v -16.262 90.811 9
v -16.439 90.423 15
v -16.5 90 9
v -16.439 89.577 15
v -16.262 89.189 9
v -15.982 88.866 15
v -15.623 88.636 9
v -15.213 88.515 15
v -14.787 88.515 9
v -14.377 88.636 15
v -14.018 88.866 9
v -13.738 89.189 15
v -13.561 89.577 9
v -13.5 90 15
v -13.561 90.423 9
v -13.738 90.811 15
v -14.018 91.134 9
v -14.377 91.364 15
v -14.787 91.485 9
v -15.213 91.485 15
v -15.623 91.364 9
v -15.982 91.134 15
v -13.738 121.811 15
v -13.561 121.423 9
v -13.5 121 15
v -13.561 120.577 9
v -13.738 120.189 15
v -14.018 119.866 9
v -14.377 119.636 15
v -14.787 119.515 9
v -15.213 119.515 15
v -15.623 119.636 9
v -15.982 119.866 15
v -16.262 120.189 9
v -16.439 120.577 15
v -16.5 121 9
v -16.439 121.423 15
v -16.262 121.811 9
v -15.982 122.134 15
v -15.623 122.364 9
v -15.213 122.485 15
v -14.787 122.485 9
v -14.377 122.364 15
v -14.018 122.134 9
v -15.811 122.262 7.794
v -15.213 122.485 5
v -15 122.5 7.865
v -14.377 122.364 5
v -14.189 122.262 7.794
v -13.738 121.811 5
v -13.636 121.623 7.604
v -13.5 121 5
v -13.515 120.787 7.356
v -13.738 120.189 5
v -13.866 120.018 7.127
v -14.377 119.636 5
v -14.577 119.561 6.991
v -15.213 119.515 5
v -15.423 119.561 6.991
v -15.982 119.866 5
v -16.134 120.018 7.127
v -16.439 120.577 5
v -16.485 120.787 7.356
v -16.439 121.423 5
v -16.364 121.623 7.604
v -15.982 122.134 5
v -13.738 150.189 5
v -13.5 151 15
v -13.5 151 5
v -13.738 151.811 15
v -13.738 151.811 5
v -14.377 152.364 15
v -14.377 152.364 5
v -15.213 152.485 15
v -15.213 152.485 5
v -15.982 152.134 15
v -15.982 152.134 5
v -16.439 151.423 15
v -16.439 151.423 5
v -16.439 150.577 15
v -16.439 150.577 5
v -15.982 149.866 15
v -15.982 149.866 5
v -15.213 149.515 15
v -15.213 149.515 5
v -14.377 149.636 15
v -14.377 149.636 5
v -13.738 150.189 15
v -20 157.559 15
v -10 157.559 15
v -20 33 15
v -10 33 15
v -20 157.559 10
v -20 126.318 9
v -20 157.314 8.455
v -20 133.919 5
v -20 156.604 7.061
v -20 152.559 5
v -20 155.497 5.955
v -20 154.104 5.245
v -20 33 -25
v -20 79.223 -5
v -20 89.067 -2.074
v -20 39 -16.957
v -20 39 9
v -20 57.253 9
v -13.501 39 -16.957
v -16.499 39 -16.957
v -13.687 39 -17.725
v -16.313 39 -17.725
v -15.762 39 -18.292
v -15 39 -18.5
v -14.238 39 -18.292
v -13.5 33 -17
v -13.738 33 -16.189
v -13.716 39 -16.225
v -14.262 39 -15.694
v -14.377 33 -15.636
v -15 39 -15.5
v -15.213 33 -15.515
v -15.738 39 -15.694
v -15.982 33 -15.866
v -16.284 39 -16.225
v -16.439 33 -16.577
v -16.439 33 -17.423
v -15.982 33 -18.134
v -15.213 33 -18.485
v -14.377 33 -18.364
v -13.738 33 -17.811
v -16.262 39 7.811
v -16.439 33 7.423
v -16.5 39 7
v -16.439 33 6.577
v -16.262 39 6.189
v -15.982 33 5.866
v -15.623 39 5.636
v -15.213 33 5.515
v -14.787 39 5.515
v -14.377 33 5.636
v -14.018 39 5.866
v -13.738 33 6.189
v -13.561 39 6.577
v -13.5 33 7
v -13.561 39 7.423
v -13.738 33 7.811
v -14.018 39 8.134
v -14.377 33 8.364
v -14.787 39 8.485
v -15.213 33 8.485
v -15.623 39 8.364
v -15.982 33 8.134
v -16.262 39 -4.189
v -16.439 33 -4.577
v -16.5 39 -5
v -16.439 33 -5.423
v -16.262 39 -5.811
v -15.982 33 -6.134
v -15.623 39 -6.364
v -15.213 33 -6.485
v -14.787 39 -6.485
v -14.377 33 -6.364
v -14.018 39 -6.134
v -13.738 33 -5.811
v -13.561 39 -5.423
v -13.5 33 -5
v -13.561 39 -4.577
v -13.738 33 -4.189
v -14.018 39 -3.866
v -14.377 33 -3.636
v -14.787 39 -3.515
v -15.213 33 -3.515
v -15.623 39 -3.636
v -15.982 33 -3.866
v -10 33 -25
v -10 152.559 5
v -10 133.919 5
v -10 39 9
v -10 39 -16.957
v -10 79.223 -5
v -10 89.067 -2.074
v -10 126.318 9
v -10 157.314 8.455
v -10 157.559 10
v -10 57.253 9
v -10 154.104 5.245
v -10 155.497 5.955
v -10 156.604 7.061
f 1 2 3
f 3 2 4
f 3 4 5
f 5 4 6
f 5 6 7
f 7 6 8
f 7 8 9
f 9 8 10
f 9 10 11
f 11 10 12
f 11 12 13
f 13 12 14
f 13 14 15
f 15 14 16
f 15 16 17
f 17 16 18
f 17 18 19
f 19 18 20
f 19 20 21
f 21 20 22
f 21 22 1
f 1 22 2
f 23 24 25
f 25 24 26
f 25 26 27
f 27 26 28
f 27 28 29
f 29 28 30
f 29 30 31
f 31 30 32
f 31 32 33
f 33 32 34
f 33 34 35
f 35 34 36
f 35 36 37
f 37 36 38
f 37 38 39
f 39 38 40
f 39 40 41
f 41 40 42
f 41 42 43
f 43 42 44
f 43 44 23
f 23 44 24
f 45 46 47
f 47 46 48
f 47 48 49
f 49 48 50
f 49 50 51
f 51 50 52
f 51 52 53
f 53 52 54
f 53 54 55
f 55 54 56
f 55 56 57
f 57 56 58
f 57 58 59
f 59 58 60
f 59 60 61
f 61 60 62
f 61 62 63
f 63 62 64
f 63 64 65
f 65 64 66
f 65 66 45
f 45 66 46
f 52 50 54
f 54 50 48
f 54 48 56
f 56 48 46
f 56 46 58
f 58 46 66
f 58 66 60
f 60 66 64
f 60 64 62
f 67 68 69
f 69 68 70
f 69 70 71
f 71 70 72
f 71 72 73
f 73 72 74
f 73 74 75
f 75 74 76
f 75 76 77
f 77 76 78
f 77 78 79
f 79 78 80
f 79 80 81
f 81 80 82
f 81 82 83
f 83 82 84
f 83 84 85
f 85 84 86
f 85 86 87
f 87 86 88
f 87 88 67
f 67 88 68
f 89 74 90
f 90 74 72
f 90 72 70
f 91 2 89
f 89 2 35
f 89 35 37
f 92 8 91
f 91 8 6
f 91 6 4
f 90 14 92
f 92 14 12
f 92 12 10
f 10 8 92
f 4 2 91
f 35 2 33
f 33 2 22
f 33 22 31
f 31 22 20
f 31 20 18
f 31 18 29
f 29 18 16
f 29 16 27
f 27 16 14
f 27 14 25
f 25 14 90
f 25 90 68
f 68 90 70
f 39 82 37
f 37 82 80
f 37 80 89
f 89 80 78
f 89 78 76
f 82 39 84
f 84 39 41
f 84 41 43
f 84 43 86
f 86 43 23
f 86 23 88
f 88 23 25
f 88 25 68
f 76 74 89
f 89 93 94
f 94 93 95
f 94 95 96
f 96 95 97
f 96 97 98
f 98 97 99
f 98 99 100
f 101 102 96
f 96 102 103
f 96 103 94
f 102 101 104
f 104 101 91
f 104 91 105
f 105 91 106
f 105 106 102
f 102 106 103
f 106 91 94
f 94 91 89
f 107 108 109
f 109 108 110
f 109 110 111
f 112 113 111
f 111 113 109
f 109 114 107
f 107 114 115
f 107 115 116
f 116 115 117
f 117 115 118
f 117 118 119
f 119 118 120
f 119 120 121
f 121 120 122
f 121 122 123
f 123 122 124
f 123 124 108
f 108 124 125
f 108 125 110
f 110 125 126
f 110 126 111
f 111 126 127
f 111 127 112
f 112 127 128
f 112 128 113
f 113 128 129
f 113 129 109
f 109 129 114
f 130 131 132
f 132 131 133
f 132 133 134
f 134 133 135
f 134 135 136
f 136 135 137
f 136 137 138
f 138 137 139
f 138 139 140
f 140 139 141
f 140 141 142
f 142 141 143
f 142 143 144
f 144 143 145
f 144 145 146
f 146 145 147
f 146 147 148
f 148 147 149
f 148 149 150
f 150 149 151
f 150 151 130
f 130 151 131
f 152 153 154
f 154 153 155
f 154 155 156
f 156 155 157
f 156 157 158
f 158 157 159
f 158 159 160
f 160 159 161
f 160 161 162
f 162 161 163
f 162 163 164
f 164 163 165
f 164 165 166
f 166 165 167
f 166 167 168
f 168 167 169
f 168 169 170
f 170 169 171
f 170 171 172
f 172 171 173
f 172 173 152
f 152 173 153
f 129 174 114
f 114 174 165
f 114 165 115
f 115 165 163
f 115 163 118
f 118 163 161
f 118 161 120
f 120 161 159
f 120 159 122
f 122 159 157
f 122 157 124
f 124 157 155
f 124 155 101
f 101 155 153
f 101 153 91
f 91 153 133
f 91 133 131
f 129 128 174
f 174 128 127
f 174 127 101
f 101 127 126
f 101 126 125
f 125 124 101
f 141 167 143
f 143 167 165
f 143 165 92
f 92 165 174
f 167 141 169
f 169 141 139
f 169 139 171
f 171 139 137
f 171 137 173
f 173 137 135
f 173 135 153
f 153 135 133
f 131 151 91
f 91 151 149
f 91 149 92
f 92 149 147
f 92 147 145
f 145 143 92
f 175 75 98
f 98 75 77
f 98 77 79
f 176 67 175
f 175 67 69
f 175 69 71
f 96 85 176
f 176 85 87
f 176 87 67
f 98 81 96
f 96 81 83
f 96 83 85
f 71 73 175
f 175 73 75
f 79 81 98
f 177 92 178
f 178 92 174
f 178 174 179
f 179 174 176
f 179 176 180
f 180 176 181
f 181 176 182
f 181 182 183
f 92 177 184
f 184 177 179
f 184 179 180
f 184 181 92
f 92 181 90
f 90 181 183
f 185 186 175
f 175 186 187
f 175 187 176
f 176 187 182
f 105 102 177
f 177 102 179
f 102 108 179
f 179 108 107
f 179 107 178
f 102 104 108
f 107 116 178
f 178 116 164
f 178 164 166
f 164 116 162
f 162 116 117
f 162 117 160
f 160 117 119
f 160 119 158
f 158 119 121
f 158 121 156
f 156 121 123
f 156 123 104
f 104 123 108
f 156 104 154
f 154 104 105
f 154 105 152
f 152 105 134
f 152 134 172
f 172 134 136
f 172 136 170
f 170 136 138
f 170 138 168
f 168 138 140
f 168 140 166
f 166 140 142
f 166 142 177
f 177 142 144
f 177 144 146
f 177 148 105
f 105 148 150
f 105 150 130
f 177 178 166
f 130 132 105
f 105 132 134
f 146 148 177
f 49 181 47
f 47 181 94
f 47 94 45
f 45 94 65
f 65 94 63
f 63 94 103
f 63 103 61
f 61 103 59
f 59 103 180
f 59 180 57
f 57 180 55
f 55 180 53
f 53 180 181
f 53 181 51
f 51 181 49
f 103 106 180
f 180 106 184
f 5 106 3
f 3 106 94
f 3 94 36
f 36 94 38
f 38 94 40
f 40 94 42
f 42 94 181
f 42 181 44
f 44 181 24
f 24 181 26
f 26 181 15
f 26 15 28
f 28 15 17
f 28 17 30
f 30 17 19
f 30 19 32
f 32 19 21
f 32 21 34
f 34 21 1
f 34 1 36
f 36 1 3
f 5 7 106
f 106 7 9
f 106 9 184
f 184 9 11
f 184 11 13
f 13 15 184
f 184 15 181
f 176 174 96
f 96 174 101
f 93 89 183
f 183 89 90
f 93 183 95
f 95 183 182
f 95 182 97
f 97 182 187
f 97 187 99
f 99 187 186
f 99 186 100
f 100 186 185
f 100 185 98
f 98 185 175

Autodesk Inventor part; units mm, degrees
ref_plane "YZ Plane" through (0, 0, 0) normal (1, 0, 0) x (0, 1, 0)
ref_plane "XZ Plane" through (0, 0, 0) normal (0, 1, 0) x (-1, 0, 0)
sketch "스케치1" plane through (0, 0, 0) normal (0, 0, 1) x (1, 0, 0)
  line L0 (-5, -33) -> (5, -33)
  line L1 (5, -33) -> (5, 33)
  line L2 (5, 33) -> (-5, 33)
  line L3 (-5, 33) -> (-5, -33)
  line L4 (-5, -33) -> (5, 33) construction
  line L5 (5, -33) -> (-5, 33) construction
  line L6 (-5, 33) -> (-35, 33)
  line L7 (-35, 33) -> (-35, 23)
  line L8 (-35, 23) -> (-5, 23)
  line L9 (-5, 23) -> (-5, 33)
  line L10 (0, 0) -> (-11.0402, 0)
  line L11 (-5, -33) -> (-35, -33)
  line L12 (-35, -33) -> (-35, -23)
  line L13 (-35, -23) -> (-5, -23)
  point P0 (-5, 23)
  point P1 (-5, -23)
  dimension "d0" = 66
  dimension "d1" = 10
  dimension "d2" = 10
  dimension "d3" = 30
extrude "돌출1" add sketch "스케치1" along normal mid plane 50
sketch "스케치2" plane through (0, 0, 25) normal (0, 0, 1) x (1, 0, 0)
  circle A0 centre (-15, 183) radius 14
  line L0 (-35, 33) -> (-35, 23) projected
  line L1 (-35, 33) -> (-28.9889, 183.5585)
  line L2 (5, 33) -> (-35, 33) projected
  line L3 (-15, 33) -> (-15, 183) construction
  line L4 (5, 33) -> (-1.0111, 183.5585)
  point P0 (0, 0)
  dimension "d6" = 28
  dimension "d7" = 150
extrude "돌출2" add sketch "스케치2" against normal blind 10
ref_plane "작업 평면1" through (-15, 23, -25) normal (-1, 0, 0) x (0, 0, 1)
sketch "스케치3" plane through (-15, 23, -25) normal (-1, 0, 0) x (0, 0, 1)
  line L0 (40, 160.5585) -> (40, 10) projected
  line L1 (0, 10) -> (40, 10) projected
  line L2 (40, 144.5585) -> (0, 10)
  line L3 (45.7513, 142.8488) -> (8.0431, 16)
  line L4 (8.0431, 16) -> (34, 16)
  line L5 (34, 16) -> (34, 160.5585)
  line L6 (34, 16) -> (20, 56.2226)
  line L7 (34, 34.2526) -> (22.9265, 66.0672)
  point P0 (25, -23)
  point P1 (34, 103.318)
  point P2 (34, 124.3747)
  point P3 (40, 123.5018)
  dimension "d10" = 16
  dimension "d11" = 6
  dimension "d12" = 6
extrude "돌출3" add sketch "스케치3" along normal mid plane 10 contours L0 L3 L5 L2 | L0 L1 L2 L5 L3 | L7 L5 L6 L3
sketch "스케치4" plane through (0, 0, 25) normal (0, 0, 1) x (1, 0, 0)
  line L0 (-35, 33) -> (-28.9889, 183.5585) projected
  line L1 (5, 33) -> (-1.0111, 183.5585) projected
  line L2 (-35, 33) -> (5, 33)
  arc A0 (-1.0111, 183.5585) -> (-28.9889, 183.5585) centre (-15, 183) ccw projected
  line L3 (-7.0064, 183.3192) -> (-1.2443, 39)
  line L4 (-1.2443, 39) -> (-28.7557, 39)
  line L5 (-28.7557, 39) -> (-22.9936, 183.3192)
  arc A1 (-7.0064, 183.3192) -> (-22.9936, 183.3192) centre (-15, 183) ccw
  line L6 (-1.2443, 39) -> (-27.6994, 65.4551)
  line L7 (-1.5972, 47.8382) -> (-27.3737, 73.6146)
  line L8 (-27.3737, 73.6146) -> (-3.5765, 97.4118)
  line L9 (-3.9022, 105.5713) -> (-27.0208, 82.4528)
  line L10 (-3.9022, 105.5713) -> (-25.2456, 126.9147)
  line L11 (-25.2456, 126.9147) -> (-5.5411, 146.6192)
  line L12 (-5.5411, 146.6192) -> (-23.7326, 164.8107)
  line L13 (-23.7326, 164.8107) -> (-6.2674, 164.8107)
  line L14 (-21.003, 131.1573) -> (-4.2551, 114.4095)
  line L15 (-15.2473, 164.8107) -> (-5.894, 155.4574)
  line L16 (-24.8927, 135.7528) -> (-9.7837, 150.8618)
  point P0 (0, 0)
  point P1 (-5.2153, 138.4597)
  dimension "d15" = 6
  dimension "d16" = 45
  dimension "d17" = 6
  dimension "d18" = 90
  dimension "d19" = 6
  dimension "d23" = 6
extrude "돌출4" cut sketch "스케치4" against normal blind 10 contours L3 L15 L13 | L12 L16 L5 | L3 L14 L11 | L10 L9 L5 | L3 L7 L8 | L6 L4 L5
sketch "스케치5" plane through (5, -33, -25) normal (1, 0, 0) x (0, 0, -1)
  line L0 (-118.3974, 269.5393) -> (141.4613, 269.5393)
  line L1 (141.4613, 269.5393) -> (141.4613, -32.7297)
  line L2 (141.4613, -32.7297) -> (-118.3974, -32.7297)
  line L3 (-118.3974, -32.7297) -> (-118.3974, 269.5393)
  line L4 (-40, 216.5585) -> (-40, 66) projected
  line L5 (-40, 66) -> (56.641, 66)
  line L6 (56.641, 66) -> (56.641, 208.6229)
  line L7 (56.641, 208.6229) -> (-40, 208.6229)
  line L8 (-40, 208.6229) -> (-40, 66)
  point P0 (-25, 33)
extrude "돌출5" cut sketch "스케치5" against normal blind 128.75
sketch "스케치6" plane through (-20, 33, -25) normal (0, -1, 0) x (1, 0, 0)
  circle A0 centre (5, 8) radius 1.5
  line L0 (0, 0) -> (10, 0) projected
  line L1 (10, 0) -> (10, 40) projected
  circle A1 centre (5, 20) radius 1.5
  circle A2 centre (5, 32) radius 1.5
  point P0 (20, 25)
  point P1 (5, 0)
  dimension "d27" = 3
  dimension "d28" = 8
  dimension "d31" = 12
extrude "돌출6" cut sketch "스케치6" against normal up to surface (6 mm away)
sketch "스케치7" plane through (-10, 23, -25) normal (1, 0, 0) x (0, 0, -1)
  line L0 (-40, 144.5585) -> (-30, 144.5585)
  line L1 (-30, 144.5585) -> (-30, 110.9189)
  line L2 (-40, 144.5585) -> (0, 10) projected
  point P0 (-25, -23)
  point P1 (-39.8767, 144.1437)
  dimension "d38" = 10
extrude "돌출7" add sketch "스케치7" against normal blind 10
sketch "스케치8" plane through (0, 0, 15) normal (0, 0, 1) x (1, 0, 0)
  circle A0 centre (-15, 90) radius 1.5
  circle A1 centre (-15, 121) radius 1.5
  circle A2 centre (-15, 151) radius 1.5
  line L0 (-10, 33) -> (-20, 33) projected
  line L1 (-10, 167.5585) -> (-20, 167.5585) projected
  point P0 (0, 0)
  point P1 (-15, 167.5585)
  dimension "d43" = 3
  dimension "d44" = 3
  dimension "d45" = 3
  dimension "d46" = 30
  dimension "d47" = 31
  dimension "d48" = 57
extrude "돌출8" cut sketch "스케치8" against normal blind 10
sketch "스케치9" plane through (-10, 167.5585, 15) normal (0, 1, 0) x (1, 0, 0)
  line L0 (0, 10) -> (0, 0) projected
  line L1 (0, 10) -> (-10, 10) projected
  line L2 (-10, 0) -> (-10, 10) projected
  line L3 (0, 0) -> (-10, 0) projected
  point P0 (10, 15)
extrude "돌출9" cut sketch "스케치9" against normal blind 10
fillet "모깎기3" radius 5 1 edges at (-15, 157.5585, 5)
properties part number "전체 형상"
